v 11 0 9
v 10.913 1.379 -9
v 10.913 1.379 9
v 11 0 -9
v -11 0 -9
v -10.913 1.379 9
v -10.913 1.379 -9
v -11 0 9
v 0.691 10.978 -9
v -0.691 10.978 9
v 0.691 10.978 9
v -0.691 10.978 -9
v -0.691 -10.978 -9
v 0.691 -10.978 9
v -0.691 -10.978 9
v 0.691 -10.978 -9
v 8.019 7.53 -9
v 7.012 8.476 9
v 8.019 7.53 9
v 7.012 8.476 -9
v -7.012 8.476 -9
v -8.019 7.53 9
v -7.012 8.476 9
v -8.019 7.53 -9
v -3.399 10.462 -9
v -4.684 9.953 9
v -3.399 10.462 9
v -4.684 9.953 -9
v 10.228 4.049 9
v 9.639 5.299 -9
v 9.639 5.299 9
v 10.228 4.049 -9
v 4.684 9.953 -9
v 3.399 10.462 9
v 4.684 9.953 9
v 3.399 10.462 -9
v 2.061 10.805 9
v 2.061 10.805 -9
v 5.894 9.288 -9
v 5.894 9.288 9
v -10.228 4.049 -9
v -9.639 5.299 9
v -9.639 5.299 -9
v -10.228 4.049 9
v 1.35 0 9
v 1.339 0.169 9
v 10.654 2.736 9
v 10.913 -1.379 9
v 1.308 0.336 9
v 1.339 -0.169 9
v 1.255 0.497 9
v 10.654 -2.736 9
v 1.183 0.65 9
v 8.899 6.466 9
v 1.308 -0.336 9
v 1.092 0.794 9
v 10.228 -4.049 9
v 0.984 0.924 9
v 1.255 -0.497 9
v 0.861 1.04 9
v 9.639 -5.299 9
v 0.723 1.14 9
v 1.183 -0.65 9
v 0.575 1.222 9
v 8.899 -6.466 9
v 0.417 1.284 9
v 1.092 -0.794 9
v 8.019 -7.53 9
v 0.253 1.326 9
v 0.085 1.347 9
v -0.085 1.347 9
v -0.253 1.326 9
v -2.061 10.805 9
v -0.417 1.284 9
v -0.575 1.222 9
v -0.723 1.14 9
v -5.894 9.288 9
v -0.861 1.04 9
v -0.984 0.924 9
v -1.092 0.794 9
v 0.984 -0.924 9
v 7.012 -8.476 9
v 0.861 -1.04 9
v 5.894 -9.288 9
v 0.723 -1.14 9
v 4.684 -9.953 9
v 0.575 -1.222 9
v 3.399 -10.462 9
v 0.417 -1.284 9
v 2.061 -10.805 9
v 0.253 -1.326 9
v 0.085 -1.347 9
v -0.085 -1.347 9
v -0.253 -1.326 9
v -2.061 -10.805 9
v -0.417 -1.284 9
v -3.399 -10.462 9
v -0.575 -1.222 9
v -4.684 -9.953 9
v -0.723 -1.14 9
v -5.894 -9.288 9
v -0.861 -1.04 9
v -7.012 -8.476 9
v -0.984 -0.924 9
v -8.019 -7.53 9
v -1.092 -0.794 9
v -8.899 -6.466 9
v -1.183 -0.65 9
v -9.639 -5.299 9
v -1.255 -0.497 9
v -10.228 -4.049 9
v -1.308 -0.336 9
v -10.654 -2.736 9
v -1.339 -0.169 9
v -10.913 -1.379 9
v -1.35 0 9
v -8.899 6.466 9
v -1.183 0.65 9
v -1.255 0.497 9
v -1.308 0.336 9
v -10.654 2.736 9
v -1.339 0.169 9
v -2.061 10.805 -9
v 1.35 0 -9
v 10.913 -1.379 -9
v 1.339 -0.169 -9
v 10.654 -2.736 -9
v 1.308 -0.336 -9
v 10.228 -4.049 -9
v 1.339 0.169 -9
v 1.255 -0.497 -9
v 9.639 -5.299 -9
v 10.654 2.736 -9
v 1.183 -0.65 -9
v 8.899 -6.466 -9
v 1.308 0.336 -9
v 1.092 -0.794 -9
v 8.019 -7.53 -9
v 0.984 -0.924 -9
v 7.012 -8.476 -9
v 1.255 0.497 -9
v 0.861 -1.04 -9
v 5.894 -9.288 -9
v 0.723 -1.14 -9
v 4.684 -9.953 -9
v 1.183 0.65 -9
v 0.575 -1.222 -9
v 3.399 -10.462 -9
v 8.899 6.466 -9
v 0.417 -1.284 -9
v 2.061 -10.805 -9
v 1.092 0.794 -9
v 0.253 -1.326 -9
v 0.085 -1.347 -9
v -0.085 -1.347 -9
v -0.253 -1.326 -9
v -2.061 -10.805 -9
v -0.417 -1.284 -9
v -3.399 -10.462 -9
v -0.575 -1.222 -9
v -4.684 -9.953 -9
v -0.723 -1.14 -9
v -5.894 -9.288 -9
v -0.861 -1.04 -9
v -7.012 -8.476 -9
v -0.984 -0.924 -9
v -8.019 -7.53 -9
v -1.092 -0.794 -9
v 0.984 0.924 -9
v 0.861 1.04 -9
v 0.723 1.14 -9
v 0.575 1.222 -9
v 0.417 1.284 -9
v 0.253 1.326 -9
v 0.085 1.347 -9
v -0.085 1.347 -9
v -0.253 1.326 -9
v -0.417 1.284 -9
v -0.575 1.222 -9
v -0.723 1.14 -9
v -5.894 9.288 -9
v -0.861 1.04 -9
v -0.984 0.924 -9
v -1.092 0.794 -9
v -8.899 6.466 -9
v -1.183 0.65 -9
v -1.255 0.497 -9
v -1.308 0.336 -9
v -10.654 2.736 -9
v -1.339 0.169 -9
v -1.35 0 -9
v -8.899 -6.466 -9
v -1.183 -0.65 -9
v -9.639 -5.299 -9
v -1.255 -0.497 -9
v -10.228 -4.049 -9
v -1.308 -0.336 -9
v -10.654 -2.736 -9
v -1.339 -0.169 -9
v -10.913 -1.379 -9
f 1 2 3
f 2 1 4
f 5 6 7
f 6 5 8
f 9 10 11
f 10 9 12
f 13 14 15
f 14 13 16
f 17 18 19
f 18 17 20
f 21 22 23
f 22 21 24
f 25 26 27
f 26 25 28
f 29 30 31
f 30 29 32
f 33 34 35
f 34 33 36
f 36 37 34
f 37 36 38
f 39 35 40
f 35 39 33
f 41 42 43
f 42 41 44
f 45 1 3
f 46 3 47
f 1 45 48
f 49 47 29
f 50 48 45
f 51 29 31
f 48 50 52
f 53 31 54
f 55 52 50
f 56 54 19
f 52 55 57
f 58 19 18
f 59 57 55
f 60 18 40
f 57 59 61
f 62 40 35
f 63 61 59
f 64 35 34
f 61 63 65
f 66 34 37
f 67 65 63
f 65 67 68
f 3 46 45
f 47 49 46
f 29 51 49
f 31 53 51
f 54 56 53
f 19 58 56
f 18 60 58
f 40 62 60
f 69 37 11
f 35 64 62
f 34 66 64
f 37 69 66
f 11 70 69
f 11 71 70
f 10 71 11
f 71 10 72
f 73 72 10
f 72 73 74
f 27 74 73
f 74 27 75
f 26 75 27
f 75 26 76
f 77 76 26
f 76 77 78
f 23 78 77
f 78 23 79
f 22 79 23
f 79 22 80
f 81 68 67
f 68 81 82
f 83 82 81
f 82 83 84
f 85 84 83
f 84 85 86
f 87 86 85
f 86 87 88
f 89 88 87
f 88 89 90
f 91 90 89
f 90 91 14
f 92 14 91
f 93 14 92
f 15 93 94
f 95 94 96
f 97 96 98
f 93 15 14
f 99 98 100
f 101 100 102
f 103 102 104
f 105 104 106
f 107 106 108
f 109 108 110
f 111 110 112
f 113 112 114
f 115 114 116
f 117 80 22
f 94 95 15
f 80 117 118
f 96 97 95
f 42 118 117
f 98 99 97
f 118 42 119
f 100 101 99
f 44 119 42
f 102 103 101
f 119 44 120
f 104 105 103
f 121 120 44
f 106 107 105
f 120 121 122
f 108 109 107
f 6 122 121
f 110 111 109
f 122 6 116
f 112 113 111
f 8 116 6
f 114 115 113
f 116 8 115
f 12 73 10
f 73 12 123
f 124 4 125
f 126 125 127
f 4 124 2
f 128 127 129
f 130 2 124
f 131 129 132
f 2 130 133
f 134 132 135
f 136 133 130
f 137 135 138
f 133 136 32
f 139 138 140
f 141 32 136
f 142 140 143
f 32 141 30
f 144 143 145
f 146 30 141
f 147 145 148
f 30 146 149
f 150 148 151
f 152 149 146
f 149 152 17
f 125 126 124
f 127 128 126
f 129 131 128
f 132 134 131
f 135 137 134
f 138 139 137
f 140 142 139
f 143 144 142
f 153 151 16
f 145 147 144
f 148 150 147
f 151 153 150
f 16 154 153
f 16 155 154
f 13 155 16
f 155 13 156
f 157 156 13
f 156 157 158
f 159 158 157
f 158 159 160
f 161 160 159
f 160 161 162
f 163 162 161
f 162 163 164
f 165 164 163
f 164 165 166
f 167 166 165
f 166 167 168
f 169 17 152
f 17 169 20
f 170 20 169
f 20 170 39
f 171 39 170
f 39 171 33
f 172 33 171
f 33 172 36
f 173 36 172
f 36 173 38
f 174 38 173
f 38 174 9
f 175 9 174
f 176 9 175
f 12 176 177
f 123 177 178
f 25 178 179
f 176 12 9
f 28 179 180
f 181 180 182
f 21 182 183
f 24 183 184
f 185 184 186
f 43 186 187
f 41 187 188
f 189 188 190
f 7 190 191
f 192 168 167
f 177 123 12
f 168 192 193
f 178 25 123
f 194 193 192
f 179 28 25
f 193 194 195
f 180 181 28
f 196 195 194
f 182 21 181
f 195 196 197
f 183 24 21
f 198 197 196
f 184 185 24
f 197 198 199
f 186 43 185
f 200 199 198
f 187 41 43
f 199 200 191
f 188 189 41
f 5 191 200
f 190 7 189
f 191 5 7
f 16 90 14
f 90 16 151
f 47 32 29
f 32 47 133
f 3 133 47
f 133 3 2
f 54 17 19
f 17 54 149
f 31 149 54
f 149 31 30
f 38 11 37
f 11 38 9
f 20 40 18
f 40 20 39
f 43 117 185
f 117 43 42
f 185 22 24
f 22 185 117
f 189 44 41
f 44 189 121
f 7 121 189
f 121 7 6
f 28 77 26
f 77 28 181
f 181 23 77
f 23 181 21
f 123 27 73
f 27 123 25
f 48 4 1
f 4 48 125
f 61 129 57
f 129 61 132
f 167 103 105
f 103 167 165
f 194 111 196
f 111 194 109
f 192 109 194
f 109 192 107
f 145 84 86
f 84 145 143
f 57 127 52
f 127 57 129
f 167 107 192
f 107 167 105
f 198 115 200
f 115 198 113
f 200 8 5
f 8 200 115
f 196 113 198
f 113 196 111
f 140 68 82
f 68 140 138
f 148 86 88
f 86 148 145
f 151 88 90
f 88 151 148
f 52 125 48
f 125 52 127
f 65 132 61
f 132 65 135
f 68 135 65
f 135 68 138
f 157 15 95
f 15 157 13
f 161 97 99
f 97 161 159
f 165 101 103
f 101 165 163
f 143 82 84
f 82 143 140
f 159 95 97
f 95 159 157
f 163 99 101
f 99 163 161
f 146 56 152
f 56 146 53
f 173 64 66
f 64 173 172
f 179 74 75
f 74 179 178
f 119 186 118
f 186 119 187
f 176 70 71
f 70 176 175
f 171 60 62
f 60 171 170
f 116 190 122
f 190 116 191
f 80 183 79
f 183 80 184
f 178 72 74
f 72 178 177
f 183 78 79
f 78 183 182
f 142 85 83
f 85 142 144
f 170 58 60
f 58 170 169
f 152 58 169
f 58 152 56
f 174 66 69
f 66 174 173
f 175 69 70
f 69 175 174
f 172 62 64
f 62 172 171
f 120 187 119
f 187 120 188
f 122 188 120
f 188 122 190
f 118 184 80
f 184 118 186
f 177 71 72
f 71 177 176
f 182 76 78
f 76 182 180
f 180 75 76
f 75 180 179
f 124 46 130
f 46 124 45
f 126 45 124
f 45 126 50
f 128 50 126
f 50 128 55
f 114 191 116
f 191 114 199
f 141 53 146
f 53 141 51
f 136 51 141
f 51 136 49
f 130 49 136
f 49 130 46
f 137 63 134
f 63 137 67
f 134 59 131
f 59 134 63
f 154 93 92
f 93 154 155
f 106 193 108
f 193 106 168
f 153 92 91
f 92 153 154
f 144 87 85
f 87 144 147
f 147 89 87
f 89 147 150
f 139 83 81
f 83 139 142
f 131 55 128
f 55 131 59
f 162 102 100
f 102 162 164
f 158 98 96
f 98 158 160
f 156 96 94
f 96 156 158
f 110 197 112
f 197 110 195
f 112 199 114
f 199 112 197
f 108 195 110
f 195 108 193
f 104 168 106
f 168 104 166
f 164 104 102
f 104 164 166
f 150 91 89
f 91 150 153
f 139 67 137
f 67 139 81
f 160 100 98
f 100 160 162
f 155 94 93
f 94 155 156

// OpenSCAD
$fn = 50;


difference() {
	union() {
		translate(v = [0, 0, -9.0000000000]) {
			cylinder(h = 18, r = 11.0000000000);
		}
	}
	union() {
		translate(v = [0, 0, -100.0000000000]) {
			cylinder(h = 200, r = 1.3500000000);
		}
	}
}
